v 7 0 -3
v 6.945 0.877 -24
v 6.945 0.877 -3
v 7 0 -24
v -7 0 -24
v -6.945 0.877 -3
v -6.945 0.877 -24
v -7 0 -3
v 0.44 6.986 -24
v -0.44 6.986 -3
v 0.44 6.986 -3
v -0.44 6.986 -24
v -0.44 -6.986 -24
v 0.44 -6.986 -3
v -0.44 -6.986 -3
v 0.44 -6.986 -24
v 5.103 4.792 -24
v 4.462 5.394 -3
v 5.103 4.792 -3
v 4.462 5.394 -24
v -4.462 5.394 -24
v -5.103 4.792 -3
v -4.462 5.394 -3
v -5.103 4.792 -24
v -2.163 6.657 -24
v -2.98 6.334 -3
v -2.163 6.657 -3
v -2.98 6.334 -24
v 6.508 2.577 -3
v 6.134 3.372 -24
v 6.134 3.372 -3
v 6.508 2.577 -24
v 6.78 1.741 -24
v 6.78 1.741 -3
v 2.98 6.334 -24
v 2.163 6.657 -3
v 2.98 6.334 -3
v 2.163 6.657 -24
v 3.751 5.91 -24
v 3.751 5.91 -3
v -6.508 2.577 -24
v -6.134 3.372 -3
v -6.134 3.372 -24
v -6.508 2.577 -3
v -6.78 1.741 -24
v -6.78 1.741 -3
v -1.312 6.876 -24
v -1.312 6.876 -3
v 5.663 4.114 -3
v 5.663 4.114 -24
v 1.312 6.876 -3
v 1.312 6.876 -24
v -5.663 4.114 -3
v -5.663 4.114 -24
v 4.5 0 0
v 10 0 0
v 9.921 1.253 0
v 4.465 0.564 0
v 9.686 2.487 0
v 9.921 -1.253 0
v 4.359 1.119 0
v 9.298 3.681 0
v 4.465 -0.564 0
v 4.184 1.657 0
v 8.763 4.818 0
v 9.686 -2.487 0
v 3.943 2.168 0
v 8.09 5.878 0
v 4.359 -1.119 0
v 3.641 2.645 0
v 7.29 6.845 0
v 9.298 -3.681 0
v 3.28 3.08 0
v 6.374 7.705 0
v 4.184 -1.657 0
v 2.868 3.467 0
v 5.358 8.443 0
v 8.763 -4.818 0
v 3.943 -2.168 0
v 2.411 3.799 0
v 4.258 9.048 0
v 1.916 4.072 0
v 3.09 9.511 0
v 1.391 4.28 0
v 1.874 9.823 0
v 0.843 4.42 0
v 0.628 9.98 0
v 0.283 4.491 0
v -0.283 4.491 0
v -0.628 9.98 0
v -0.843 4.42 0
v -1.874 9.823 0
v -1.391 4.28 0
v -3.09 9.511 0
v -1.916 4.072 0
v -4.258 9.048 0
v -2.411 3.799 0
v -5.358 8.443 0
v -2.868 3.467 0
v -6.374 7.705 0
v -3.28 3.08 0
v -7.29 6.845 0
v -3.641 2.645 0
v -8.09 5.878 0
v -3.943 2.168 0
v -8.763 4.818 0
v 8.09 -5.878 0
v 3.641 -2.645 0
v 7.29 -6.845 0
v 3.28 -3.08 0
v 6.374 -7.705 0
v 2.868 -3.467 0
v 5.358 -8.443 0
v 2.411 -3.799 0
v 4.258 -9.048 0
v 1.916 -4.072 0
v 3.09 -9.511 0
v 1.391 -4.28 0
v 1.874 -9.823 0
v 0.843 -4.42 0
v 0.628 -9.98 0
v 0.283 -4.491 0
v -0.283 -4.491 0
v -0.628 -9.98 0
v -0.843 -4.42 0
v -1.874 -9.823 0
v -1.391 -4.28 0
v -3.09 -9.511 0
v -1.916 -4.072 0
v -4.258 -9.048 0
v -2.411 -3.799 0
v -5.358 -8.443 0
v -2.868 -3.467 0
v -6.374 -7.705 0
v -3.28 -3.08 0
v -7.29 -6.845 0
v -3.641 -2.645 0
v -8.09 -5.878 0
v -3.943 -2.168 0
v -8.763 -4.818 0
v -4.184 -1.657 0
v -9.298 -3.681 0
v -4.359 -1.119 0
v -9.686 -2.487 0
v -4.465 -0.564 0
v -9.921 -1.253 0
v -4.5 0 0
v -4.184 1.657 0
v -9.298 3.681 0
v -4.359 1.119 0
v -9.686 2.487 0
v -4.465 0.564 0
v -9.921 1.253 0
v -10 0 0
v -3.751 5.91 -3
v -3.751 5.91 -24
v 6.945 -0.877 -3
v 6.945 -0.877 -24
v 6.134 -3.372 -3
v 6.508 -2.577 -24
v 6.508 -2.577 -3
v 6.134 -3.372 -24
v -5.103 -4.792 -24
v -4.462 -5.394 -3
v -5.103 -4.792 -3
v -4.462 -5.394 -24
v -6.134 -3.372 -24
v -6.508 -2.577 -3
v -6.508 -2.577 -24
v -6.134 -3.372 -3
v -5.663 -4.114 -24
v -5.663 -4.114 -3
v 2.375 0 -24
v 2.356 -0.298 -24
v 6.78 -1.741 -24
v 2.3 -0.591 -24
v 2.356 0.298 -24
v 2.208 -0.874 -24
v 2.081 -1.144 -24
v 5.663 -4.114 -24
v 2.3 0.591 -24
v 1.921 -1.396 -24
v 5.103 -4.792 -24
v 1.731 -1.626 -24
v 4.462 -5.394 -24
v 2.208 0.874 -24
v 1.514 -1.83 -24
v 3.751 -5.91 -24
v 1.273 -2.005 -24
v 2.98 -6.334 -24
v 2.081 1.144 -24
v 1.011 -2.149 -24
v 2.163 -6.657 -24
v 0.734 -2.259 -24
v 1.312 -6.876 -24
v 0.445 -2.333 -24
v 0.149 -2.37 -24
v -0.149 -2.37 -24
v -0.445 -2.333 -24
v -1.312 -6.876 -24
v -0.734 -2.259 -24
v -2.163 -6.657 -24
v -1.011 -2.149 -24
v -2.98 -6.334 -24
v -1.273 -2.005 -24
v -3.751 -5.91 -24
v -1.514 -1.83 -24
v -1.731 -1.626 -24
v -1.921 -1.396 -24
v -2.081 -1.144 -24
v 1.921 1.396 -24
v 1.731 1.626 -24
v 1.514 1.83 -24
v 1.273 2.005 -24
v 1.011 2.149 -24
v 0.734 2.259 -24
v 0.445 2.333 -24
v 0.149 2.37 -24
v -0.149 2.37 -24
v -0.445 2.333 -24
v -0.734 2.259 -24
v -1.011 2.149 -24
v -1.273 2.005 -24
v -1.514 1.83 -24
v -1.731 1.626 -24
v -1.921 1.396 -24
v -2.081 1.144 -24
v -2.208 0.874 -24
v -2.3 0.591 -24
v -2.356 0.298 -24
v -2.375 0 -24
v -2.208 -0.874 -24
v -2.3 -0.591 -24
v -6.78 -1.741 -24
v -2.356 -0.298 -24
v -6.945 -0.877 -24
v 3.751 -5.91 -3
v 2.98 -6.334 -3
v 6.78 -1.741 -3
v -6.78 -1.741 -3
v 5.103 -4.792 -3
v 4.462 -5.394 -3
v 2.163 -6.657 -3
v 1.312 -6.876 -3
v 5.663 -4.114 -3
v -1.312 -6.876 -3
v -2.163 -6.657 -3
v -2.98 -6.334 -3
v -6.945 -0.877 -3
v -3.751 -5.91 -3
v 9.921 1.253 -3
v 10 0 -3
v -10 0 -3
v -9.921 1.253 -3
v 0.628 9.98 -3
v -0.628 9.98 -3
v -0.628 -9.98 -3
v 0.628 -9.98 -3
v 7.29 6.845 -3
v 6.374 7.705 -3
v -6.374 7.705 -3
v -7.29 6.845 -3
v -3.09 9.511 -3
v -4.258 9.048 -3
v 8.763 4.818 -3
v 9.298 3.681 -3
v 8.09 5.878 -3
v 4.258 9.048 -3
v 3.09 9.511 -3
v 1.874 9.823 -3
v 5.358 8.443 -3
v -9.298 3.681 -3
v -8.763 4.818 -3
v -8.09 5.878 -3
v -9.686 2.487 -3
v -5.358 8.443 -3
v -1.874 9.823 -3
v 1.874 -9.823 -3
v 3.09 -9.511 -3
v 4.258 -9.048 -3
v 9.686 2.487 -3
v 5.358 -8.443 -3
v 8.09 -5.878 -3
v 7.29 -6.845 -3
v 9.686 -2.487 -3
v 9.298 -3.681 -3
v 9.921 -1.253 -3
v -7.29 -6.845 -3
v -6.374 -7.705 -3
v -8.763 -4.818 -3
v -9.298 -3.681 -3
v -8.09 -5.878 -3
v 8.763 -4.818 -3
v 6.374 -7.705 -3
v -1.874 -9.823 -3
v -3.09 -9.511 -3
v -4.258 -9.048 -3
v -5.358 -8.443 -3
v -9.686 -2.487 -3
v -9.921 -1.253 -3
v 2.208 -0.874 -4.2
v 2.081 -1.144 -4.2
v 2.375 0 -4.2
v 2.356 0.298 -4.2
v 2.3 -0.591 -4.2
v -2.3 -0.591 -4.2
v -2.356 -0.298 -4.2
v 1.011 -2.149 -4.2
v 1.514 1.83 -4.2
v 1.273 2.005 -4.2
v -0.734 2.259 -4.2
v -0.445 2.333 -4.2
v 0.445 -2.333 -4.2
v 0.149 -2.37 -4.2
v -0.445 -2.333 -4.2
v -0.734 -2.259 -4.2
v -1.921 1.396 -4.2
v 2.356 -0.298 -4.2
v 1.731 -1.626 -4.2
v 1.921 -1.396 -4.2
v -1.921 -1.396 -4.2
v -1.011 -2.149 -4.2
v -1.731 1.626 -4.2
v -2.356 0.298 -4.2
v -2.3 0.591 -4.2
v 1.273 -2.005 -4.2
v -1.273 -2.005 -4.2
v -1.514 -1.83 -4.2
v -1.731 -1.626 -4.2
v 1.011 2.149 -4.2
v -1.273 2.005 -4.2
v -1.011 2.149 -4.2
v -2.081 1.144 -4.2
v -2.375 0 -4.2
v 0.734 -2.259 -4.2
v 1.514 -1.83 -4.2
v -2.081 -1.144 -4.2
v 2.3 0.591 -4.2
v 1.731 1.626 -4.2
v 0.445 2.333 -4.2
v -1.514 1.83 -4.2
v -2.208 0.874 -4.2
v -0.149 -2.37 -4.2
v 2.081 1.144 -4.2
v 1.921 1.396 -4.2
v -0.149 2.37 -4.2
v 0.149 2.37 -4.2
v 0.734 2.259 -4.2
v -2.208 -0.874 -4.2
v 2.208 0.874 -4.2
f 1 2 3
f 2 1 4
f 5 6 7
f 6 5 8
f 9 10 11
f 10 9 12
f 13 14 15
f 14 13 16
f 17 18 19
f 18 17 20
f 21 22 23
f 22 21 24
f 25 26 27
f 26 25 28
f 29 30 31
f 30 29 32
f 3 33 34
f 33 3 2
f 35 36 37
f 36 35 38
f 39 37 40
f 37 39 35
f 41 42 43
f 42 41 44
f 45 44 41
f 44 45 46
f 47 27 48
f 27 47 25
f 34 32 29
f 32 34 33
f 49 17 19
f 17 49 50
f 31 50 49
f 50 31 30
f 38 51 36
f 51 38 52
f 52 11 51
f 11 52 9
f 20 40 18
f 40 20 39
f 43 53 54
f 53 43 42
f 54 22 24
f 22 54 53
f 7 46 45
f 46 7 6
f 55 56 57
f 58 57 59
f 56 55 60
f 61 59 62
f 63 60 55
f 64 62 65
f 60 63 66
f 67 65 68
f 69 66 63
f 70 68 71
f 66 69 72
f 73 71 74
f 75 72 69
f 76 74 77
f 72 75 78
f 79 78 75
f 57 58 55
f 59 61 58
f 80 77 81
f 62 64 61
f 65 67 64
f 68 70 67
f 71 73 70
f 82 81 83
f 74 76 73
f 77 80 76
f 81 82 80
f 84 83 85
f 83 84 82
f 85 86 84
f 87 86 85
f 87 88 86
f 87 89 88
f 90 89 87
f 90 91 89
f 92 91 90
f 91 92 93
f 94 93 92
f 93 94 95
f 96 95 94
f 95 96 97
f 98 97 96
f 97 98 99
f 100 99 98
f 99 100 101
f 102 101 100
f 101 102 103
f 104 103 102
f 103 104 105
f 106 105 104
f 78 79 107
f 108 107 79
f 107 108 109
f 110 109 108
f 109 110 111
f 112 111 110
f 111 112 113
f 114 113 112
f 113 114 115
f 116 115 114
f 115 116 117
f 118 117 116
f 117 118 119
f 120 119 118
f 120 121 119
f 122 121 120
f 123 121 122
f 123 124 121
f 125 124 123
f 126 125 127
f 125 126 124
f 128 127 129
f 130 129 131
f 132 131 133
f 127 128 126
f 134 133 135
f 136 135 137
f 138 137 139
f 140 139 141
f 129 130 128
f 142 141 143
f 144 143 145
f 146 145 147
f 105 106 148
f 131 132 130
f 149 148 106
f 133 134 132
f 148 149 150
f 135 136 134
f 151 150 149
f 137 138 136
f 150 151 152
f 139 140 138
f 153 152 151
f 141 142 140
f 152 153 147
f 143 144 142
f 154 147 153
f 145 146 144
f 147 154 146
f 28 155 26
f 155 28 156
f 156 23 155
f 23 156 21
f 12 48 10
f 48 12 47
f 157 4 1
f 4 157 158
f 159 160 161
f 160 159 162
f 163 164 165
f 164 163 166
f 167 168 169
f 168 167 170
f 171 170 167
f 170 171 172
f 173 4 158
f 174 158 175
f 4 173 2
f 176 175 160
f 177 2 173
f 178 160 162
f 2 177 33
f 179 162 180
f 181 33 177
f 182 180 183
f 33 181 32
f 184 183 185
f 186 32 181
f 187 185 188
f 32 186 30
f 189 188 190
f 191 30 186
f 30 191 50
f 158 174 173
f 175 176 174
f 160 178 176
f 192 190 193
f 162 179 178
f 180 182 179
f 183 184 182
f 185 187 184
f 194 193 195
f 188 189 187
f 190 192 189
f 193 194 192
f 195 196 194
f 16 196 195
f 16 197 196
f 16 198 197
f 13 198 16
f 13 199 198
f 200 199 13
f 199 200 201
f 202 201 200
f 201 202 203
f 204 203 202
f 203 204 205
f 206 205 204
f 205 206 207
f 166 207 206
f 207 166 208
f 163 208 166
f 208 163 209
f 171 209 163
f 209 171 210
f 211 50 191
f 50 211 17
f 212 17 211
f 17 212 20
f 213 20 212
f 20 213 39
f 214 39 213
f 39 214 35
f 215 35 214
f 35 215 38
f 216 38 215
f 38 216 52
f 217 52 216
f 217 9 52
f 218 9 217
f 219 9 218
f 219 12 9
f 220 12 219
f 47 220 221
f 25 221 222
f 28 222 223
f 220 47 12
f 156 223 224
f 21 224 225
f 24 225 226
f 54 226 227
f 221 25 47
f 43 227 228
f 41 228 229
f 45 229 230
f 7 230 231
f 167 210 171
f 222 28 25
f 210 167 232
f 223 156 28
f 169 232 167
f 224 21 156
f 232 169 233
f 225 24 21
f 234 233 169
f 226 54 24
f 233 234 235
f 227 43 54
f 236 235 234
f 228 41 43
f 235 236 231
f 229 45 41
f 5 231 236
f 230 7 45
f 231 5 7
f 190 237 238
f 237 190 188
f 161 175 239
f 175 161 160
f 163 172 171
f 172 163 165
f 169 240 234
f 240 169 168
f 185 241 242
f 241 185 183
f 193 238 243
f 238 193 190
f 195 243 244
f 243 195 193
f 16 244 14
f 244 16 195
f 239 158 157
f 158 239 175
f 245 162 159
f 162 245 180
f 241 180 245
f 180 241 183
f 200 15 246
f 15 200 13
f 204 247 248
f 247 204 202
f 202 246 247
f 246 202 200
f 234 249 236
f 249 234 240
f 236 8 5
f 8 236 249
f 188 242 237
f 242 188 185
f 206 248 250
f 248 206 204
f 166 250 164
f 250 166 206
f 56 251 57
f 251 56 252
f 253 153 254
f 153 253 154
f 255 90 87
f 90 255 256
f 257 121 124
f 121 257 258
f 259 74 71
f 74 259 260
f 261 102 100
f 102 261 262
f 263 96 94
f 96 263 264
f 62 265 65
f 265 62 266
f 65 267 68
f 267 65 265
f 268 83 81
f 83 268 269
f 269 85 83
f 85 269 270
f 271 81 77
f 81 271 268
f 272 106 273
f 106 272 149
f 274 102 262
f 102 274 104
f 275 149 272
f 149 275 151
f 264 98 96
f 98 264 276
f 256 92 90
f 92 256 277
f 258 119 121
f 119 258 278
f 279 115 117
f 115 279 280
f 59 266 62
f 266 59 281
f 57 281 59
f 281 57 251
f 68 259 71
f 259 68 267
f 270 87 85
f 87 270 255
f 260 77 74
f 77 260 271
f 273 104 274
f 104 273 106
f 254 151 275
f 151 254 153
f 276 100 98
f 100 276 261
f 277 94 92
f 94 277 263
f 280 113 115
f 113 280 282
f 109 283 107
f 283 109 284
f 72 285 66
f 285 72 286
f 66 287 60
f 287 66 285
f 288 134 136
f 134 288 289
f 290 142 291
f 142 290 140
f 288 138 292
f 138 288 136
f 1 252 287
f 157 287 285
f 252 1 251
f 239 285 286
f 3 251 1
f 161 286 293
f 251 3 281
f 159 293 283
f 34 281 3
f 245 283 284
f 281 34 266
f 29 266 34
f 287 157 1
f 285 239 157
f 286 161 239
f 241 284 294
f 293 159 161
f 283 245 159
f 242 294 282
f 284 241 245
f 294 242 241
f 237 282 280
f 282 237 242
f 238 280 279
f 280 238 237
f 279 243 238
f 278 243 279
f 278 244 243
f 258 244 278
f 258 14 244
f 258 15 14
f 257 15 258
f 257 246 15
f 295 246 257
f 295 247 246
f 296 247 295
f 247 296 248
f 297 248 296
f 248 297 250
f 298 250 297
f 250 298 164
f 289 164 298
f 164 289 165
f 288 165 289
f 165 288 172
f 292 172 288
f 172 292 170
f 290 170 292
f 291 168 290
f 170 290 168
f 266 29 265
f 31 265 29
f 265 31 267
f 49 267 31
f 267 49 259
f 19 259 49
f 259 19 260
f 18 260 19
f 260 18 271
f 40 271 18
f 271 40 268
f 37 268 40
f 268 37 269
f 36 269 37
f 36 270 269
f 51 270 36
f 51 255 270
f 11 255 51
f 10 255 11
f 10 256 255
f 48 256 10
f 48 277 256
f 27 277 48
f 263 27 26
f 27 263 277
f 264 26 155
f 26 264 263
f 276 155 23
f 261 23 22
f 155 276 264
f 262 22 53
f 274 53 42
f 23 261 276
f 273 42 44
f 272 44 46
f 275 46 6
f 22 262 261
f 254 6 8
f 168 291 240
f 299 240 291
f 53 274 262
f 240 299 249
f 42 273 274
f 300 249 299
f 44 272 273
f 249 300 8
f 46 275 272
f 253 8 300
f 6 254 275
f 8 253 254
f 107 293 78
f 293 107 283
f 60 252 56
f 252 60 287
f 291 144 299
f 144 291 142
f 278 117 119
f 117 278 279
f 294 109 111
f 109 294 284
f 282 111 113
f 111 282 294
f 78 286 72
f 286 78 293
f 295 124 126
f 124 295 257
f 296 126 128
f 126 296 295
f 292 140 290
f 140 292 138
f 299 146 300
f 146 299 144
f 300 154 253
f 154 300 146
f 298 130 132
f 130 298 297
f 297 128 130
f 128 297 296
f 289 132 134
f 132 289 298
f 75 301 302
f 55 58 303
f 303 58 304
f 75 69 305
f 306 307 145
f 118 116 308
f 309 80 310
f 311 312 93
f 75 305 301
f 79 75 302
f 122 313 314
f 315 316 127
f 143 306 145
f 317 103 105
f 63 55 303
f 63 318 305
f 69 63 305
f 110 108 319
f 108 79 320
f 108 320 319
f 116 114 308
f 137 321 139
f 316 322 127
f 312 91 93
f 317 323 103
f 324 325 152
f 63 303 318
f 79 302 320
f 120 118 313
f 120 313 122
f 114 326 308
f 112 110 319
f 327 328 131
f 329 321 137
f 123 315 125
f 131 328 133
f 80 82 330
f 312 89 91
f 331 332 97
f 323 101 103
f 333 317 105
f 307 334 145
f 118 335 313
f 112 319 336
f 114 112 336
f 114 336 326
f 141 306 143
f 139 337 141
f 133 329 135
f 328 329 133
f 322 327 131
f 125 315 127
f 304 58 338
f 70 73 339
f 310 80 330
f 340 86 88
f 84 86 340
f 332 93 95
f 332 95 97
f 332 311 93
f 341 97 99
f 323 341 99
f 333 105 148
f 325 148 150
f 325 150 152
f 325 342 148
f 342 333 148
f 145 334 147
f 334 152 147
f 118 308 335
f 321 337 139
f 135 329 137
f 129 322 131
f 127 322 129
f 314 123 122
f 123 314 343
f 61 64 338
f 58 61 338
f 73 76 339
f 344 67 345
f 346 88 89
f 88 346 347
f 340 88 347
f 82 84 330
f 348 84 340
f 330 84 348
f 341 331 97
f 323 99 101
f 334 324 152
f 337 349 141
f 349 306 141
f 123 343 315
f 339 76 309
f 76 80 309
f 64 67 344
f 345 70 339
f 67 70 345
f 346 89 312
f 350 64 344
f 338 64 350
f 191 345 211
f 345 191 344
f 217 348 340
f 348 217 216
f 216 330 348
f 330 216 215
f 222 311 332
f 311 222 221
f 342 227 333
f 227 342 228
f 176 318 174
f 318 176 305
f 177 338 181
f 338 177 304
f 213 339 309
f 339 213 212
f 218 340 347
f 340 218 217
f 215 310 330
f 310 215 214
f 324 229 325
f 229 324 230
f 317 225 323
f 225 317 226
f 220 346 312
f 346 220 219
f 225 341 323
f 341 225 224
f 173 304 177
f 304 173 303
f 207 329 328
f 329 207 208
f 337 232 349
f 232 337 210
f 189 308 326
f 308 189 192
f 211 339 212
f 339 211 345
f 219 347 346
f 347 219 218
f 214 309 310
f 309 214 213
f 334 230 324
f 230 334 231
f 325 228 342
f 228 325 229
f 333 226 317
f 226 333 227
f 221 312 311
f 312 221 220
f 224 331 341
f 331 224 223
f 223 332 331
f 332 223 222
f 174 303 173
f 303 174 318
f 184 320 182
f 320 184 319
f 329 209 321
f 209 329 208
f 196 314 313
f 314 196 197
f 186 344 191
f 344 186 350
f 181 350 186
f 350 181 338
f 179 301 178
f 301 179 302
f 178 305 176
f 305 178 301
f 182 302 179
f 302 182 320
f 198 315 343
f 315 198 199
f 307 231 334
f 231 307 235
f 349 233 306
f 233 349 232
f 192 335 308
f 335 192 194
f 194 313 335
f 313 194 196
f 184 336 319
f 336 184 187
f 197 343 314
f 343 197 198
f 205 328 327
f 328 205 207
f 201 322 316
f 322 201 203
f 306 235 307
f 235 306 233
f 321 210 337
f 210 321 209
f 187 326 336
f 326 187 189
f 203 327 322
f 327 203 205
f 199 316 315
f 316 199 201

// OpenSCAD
$fn = 50;


difference() {
	union() {
		translate(v = [0, 0, -24.0000000000]) {
			cylinder(h = 24, r = 7.0000000000);
		}
		translate(v = [0, 0, -3.0000000000]) {
			cylinder(h = 3, r = 10.0000000000);
		}
	}
	union() {
		translate(v = [0, 0, 0]) {
			rotate(a = [0, 0, 0]) {
				difference() {
					union() {
						#translate(v = [0, 0, -24.0000000000]) {
							cylinder(h = 24, r = 2.2500000000);
						}
						#translate(v = [0, 0, -4.2000000000]) {
							cylinder(h = 4.2000000000, r = 7.0000000000, r1 = 2.3750000000, r2 = 4.5000000000);
						}
						#translate(v = [0, 0, -24.0000000000]) {
							cylinder(h = 24, r = 2.3750000000);
						}
						#translate(v = [0, 0, -24.0000000000]) {
							cylinder(h = 24, r = 2.2500000000);
						}
					}
					union();
				}
			}
		}
	}
}
